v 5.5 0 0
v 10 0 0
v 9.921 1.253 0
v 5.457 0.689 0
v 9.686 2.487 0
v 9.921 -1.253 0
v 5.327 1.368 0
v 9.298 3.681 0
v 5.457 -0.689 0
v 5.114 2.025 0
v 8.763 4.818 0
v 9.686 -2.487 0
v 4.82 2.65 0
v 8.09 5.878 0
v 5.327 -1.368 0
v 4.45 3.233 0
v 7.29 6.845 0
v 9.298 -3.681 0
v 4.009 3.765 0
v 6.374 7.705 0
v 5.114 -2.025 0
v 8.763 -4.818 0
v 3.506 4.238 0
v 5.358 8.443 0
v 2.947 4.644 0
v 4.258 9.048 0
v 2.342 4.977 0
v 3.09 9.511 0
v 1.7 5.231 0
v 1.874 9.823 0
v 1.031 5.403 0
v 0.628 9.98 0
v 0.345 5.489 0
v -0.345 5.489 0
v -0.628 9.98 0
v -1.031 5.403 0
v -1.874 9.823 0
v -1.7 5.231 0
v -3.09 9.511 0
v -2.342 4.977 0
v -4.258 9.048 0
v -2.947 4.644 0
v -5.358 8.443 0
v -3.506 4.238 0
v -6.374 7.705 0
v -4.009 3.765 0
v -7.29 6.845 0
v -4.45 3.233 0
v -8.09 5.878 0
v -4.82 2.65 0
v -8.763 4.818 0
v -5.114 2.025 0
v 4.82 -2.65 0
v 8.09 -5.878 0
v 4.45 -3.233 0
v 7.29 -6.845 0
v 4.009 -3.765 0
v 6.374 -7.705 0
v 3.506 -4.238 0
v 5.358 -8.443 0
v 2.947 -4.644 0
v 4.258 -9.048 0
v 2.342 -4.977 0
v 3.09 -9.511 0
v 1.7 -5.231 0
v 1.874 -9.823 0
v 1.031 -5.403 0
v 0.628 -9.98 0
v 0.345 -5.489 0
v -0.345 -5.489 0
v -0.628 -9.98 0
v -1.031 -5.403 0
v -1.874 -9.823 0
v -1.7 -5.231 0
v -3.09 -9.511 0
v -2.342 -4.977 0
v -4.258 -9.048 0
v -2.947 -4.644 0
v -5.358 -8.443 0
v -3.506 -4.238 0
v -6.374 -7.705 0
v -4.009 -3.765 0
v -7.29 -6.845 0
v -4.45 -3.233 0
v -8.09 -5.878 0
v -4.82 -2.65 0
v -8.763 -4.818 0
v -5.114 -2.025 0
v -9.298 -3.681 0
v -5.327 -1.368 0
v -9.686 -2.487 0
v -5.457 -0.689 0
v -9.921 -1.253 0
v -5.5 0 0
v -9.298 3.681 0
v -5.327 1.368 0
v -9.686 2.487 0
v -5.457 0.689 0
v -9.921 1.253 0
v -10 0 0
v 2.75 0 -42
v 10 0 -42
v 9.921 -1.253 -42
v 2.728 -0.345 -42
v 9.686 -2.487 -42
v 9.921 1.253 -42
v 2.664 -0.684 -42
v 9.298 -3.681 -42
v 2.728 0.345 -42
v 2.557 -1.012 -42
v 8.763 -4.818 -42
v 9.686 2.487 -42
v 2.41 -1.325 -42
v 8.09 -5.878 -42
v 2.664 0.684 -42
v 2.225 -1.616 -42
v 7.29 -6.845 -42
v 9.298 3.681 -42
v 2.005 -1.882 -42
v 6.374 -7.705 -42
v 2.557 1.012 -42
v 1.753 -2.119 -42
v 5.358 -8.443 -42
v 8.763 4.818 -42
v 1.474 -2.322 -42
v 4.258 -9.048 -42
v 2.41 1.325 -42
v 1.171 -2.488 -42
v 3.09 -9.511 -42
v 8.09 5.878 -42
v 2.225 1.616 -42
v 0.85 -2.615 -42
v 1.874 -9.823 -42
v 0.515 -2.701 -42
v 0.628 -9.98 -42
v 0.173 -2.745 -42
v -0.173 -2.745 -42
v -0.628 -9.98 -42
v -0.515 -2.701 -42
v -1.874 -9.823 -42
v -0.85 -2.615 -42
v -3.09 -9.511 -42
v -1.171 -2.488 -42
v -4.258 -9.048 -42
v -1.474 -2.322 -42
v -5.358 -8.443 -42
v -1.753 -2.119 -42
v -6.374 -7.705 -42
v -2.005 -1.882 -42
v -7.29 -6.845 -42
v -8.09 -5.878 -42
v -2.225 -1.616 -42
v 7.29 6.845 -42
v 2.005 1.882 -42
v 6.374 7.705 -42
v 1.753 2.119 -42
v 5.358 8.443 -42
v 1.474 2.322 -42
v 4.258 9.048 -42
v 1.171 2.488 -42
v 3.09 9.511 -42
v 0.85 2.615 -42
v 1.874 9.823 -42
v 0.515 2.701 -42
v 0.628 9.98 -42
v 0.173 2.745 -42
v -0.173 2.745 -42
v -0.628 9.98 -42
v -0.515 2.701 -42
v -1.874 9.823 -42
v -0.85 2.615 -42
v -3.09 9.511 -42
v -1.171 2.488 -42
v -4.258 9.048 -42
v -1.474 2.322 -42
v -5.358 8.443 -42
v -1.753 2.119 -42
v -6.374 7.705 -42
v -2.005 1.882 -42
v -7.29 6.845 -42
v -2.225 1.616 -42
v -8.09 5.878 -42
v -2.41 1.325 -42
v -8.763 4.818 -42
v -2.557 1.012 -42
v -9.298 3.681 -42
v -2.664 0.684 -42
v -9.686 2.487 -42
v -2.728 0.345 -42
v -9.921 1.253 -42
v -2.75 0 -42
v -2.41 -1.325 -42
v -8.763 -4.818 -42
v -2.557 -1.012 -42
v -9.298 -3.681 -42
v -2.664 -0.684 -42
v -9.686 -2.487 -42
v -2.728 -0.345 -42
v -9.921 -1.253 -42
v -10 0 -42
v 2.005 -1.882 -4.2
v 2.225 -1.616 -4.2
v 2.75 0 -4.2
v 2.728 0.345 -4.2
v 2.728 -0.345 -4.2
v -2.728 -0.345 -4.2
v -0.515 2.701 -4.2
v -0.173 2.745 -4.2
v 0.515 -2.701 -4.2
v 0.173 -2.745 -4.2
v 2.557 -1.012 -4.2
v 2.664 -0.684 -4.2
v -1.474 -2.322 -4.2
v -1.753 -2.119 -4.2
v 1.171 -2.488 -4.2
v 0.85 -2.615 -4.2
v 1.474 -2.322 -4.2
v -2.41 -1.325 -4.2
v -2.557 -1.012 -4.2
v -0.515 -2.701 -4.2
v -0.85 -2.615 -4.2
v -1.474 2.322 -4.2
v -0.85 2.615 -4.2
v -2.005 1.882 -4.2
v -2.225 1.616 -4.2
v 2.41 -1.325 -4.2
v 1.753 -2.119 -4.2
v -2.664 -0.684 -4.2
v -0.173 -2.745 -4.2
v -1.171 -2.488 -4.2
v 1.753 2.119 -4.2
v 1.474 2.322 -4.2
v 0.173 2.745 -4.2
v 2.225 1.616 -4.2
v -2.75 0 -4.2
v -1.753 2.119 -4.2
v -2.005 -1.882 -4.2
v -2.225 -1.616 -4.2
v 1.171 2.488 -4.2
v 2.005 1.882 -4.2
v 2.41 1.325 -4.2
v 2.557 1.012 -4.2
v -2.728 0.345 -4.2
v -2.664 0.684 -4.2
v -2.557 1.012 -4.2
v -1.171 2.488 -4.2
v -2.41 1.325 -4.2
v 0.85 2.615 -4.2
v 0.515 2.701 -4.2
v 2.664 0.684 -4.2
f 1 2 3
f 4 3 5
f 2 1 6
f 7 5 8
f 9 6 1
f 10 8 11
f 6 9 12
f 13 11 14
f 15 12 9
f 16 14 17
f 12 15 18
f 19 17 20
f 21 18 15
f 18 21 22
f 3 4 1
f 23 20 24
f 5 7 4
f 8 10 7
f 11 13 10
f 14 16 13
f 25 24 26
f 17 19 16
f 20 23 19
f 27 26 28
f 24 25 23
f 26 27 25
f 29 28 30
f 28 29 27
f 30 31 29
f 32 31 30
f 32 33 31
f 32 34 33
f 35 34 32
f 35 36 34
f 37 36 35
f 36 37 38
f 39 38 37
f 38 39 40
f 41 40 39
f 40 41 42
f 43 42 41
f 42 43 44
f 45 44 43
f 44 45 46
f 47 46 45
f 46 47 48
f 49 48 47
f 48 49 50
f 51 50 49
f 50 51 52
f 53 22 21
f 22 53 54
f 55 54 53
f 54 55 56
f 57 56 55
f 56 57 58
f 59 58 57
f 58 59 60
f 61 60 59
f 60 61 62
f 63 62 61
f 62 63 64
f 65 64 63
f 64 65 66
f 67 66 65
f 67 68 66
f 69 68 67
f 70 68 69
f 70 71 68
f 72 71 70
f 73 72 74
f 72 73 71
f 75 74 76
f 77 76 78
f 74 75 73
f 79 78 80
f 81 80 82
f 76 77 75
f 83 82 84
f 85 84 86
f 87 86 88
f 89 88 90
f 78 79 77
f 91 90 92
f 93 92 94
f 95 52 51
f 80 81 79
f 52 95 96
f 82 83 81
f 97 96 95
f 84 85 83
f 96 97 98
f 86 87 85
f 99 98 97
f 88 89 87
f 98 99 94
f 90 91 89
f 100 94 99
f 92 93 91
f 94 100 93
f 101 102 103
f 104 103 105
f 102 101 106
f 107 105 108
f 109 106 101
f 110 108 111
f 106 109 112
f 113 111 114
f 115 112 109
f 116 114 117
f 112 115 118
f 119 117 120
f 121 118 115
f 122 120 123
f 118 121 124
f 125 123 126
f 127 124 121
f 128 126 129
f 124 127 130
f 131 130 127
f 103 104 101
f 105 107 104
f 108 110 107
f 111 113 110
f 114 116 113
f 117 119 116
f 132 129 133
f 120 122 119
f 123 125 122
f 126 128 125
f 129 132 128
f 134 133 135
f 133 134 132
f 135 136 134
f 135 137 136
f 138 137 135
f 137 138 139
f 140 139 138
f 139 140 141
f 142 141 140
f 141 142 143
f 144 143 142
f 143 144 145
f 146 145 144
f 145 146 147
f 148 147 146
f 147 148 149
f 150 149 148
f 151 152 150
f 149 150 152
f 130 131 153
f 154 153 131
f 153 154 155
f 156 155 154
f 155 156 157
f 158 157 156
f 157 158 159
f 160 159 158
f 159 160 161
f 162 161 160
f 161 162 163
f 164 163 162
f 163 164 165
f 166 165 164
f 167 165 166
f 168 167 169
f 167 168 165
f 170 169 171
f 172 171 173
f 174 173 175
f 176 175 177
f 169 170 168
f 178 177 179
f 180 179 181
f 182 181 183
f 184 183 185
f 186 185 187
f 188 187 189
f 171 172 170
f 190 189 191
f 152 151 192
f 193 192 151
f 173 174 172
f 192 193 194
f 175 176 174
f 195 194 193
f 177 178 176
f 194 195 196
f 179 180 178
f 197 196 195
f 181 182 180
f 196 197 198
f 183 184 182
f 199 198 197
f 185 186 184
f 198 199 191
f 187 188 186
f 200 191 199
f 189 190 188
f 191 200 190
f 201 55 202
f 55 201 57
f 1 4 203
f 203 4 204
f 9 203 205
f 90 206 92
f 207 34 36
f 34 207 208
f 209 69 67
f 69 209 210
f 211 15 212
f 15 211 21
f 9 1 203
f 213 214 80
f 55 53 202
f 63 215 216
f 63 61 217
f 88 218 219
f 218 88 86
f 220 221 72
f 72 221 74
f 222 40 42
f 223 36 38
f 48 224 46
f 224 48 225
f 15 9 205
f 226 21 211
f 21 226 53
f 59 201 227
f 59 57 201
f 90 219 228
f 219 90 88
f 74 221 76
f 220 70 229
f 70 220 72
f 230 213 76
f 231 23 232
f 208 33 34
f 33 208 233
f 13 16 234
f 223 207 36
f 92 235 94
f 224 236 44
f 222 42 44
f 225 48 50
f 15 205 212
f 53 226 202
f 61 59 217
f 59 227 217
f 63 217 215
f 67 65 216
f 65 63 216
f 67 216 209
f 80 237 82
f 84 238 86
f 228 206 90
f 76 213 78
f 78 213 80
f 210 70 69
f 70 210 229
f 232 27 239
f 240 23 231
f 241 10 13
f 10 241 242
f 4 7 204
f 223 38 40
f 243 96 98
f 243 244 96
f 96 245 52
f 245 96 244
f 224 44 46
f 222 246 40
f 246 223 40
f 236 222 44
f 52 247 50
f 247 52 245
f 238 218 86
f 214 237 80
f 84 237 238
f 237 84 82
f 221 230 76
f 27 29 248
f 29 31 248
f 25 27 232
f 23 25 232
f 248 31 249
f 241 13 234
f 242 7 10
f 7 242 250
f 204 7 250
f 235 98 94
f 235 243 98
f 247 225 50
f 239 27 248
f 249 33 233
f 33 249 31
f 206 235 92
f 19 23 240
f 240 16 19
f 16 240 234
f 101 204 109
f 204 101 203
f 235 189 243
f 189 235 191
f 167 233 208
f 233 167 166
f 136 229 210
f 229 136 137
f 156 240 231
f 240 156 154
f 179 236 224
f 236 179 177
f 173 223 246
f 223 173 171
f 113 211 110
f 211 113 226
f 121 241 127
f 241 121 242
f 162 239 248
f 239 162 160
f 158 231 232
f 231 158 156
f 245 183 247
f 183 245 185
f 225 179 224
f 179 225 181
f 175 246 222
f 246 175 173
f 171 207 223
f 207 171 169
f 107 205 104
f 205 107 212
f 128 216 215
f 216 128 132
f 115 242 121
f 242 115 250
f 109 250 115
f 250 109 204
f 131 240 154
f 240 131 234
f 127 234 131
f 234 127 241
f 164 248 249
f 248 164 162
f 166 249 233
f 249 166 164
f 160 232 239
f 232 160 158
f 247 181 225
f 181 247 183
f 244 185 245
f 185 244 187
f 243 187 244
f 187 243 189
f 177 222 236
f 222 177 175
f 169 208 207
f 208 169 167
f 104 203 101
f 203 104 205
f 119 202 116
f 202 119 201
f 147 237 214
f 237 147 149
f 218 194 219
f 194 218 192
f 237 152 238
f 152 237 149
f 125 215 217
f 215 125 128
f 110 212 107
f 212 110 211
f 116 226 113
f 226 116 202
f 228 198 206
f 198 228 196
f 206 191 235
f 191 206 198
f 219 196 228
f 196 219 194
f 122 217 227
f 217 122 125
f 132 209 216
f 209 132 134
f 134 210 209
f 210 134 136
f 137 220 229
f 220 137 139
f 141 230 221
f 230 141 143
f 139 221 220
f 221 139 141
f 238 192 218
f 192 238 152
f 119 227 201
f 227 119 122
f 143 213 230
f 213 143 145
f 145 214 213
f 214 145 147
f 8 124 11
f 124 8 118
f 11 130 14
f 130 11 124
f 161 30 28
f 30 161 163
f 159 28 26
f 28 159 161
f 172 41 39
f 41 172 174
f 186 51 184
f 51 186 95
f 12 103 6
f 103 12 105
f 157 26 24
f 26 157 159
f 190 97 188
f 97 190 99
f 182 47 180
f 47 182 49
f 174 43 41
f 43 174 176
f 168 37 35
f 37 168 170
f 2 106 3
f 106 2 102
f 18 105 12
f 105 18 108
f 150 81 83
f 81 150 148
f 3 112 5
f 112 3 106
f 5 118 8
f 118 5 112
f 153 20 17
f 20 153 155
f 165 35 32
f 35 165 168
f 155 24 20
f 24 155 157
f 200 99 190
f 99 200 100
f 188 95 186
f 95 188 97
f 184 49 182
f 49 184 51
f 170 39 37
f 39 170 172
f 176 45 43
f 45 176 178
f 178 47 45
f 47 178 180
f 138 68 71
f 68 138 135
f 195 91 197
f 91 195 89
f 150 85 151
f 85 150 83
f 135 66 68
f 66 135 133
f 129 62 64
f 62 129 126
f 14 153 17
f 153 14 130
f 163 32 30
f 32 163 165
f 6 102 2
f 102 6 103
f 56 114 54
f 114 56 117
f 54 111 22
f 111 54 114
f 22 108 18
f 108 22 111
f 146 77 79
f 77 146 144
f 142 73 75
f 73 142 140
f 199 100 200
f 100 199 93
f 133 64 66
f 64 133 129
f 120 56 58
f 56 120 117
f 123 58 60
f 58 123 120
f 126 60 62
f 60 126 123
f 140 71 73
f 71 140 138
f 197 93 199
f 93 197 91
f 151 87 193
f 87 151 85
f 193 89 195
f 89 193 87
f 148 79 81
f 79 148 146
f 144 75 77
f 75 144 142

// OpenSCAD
$fn = 50;


difference() {
	union() {
		translate(v = [0, 0, -42.0000000000]) {
			cylinder(h = 42, r = 10.0000000000);
		}
		cylinder(h = 0, r = 13.0000000000);
	}
	union() {
		translate(v = [0, 0, 0]) {
			rotate(a = [0, 0, 0]) {
				difference() {
					union() {
						#translate(v = [0, 0, -42.0000000000]) {
							cylinder(h = 42, r = 2.2500000000);
						}
						#translate(v = [0, 0, -4.2000000000]) {
							cylinder(h = 4.2000000000, r1 = 2.7500000000, r2 = 5.5000000000);
						}
						#translate(v = [0, 0, -42.0000000000]) {
							cylinder(h = 42, r = 2.7500000000);
						}
						#translate(v = [0, 0, -42.0000000000]) {
							cylinder(h = 42, r = 2.2500000000);
						}
					}
					union();
				}
			}
		}
	}
}
